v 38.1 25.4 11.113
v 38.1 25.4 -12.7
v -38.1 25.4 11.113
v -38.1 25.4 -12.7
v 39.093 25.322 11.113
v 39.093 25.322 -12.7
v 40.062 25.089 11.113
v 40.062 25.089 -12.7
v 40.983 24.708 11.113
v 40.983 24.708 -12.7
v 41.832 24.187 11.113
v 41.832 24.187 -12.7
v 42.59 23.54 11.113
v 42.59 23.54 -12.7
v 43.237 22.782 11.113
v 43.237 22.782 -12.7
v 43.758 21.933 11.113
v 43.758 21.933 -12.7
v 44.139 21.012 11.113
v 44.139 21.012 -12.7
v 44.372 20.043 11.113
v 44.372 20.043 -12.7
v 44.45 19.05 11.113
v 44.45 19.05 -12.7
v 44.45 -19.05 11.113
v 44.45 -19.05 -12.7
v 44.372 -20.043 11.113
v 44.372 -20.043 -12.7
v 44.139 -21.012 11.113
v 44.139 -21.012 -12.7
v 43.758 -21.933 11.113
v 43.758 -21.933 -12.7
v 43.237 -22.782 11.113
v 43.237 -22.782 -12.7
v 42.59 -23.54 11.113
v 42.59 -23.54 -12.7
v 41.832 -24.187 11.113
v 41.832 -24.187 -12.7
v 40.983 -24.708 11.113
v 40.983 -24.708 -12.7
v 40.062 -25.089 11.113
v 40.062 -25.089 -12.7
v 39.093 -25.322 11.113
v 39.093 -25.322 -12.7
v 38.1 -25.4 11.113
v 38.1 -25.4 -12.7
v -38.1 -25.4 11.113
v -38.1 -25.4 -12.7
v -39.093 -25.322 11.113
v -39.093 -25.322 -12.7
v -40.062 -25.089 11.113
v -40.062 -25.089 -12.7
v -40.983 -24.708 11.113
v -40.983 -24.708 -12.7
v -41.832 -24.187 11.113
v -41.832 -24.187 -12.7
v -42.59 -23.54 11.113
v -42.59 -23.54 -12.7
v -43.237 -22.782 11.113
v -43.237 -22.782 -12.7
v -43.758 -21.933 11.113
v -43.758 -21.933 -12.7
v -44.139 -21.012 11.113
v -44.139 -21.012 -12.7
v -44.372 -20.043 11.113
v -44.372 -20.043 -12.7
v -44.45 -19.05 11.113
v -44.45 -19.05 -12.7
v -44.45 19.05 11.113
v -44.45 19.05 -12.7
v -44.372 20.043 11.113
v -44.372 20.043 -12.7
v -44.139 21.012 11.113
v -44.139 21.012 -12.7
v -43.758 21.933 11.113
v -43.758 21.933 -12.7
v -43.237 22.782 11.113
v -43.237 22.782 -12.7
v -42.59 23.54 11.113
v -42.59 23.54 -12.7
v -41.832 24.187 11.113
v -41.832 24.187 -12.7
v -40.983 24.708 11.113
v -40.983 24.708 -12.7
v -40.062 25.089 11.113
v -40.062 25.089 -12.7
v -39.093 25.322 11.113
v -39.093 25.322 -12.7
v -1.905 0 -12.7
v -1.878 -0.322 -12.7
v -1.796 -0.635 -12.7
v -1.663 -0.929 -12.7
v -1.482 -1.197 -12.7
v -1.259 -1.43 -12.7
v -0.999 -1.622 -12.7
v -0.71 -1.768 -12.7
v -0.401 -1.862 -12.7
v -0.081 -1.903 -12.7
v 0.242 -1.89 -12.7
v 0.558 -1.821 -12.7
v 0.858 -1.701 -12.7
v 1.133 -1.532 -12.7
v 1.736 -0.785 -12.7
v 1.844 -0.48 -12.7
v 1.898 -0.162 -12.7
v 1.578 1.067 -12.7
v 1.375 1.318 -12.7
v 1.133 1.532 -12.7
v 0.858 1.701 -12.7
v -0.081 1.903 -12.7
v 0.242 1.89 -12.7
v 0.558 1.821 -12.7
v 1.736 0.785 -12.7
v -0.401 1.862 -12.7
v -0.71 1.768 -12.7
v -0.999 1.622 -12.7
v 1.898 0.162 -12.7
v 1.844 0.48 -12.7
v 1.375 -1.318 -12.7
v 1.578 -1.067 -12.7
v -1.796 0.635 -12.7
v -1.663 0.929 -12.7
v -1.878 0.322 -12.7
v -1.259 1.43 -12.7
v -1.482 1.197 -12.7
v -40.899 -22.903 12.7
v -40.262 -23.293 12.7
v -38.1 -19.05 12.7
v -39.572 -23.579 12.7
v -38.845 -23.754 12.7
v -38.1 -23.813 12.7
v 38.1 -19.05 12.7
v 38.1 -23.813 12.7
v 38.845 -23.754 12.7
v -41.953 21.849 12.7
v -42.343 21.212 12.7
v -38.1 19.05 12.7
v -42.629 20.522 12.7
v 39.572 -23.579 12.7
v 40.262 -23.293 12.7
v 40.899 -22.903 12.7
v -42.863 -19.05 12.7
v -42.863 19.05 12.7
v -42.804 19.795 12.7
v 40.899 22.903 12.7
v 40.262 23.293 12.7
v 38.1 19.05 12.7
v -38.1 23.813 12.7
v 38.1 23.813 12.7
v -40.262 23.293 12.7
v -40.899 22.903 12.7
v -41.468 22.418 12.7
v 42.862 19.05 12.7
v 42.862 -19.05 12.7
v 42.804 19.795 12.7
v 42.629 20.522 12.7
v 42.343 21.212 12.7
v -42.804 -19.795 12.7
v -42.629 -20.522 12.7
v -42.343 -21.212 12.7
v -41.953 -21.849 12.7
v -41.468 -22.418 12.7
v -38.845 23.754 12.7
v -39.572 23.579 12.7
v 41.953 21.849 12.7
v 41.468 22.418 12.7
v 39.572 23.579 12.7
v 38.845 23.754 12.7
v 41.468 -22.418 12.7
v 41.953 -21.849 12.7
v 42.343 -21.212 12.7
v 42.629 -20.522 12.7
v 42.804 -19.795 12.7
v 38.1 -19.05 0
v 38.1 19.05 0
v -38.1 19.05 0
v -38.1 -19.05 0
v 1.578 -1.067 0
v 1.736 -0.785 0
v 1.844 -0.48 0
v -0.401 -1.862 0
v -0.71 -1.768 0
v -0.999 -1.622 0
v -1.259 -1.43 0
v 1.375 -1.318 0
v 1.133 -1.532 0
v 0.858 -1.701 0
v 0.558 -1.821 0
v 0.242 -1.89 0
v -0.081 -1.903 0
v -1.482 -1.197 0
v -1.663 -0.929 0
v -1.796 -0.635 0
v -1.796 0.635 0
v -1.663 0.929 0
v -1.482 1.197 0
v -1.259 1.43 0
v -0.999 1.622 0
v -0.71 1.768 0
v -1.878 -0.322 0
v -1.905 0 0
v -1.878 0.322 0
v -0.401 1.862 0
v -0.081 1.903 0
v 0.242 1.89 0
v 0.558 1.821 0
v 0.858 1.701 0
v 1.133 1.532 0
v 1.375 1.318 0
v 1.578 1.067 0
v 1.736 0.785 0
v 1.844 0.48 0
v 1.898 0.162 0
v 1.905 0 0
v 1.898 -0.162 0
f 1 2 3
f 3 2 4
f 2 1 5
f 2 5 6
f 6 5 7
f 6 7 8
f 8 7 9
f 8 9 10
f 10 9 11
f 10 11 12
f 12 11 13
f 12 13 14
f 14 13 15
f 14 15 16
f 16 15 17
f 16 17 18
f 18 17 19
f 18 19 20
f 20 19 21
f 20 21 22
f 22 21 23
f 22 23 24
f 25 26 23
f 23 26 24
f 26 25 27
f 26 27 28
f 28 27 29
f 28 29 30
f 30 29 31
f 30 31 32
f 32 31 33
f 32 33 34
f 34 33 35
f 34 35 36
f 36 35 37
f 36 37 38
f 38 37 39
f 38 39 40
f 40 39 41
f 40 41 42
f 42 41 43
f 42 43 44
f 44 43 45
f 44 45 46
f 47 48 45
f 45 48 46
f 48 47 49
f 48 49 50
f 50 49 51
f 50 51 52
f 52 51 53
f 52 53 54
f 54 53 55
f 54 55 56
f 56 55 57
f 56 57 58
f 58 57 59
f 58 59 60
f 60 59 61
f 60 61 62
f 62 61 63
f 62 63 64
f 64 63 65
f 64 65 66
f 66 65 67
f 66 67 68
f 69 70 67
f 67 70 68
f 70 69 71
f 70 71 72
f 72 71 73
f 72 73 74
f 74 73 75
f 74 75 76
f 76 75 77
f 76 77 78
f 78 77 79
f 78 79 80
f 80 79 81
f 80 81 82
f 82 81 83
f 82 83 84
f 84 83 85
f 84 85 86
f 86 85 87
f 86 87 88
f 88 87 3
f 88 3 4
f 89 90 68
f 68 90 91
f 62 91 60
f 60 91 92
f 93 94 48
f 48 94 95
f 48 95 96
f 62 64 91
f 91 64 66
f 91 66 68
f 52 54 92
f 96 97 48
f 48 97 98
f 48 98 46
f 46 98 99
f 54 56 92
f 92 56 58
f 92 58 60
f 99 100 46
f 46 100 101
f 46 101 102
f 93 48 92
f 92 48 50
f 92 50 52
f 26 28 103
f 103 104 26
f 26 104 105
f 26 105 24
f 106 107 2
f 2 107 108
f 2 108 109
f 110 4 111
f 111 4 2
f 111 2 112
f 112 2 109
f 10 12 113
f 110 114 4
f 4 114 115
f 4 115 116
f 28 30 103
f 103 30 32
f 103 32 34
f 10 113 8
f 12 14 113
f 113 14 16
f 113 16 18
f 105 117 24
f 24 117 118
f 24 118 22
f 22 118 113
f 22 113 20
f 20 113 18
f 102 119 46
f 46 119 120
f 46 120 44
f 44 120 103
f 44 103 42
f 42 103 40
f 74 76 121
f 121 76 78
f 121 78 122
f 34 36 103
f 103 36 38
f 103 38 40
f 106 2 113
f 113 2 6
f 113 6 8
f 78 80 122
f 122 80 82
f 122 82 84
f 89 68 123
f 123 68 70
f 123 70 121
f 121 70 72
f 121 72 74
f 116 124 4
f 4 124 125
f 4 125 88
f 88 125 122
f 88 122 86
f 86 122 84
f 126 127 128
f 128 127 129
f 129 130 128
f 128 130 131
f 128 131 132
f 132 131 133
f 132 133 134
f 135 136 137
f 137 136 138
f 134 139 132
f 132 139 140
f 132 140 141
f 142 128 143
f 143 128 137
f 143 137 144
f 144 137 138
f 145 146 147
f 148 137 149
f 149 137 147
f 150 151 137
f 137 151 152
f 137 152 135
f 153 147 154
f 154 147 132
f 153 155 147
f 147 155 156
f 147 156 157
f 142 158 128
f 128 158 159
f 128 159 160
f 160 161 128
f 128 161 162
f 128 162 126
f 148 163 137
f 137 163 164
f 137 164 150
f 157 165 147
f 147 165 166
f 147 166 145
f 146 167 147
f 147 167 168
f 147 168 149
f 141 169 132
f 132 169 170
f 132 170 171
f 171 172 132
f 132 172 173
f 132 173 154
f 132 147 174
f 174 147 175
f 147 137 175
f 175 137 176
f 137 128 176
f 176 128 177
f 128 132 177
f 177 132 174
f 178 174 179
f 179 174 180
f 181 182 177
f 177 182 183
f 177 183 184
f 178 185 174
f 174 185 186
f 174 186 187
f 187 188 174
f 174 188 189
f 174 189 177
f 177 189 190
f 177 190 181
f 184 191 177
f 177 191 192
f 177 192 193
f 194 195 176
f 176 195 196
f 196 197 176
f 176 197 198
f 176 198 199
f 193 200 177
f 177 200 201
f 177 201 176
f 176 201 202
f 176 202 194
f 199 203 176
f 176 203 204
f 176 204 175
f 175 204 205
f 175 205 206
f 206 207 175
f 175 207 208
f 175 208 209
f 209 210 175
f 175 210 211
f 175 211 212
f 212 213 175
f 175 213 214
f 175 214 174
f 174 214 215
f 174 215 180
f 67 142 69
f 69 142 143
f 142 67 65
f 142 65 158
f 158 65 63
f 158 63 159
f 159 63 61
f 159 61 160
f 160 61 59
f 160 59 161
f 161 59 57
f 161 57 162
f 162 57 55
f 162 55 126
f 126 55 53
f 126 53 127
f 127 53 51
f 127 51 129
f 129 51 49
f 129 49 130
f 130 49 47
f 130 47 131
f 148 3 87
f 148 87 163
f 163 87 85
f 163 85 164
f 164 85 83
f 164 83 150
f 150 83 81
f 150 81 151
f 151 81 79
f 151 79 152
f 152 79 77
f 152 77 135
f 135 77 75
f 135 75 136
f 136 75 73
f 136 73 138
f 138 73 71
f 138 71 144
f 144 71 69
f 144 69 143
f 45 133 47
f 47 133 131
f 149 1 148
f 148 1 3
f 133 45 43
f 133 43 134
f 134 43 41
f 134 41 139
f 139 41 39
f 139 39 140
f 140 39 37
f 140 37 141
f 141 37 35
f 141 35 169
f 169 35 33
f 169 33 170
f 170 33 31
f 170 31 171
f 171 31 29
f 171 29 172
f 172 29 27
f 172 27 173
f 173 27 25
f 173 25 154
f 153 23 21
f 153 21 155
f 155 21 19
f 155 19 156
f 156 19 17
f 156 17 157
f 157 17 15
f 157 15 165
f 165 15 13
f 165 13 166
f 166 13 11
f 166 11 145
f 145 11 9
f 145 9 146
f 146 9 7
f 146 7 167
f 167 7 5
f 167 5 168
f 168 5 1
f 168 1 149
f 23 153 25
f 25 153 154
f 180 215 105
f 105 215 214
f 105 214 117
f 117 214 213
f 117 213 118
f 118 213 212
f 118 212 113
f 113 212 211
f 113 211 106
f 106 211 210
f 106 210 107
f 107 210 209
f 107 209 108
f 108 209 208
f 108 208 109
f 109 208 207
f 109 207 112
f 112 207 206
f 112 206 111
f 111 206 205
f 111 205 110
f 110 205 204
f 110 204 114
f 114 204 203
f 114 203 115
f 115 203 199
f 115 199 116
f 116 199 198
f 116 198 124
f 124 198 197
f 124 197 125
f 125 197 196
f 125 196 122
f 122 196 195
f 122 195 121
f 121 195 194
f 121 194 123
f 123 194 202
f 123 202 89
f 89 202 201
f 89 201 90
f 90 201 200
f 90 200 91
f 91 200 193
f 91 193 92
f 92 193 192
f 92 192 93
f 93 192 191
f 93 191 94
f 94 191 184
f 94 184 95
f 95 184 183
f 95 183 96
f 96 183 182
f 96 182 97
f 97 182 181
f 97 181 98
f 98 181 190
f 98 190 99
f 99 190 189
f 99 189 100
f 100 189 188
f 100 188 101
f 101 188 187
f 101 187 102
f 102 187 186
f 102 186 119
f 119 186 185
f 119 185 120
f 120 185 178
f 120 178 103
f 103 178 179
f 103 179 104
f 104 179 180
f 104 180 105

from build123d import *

# Parameters (mm, degrees)
BOSS_EXTRUDE1_DEPTH = 12.7
BOSS_EXTRUDE2_START = 12.7
SKETCH2_3_W         = 76.2
SKETCH2_3_H         = 38.1
BOSS_EXTRUDE2_DEPTH = 12.7
CHAMFER1_SIZE       = 1.5875
SKETCH3_R           = 1.905
CUT_EXTRUDE1_DEPTH  = 58.15


with BuildPart() as part:
    # Sketch2 → Boss-Extrude1 (new body)
    with BuildSketch(Plane.XY):
        with BuildLine():
            Line((38.1, 25.4), (-38.1, 25.4))
            ThreePointArc((-38.1, 25.4), (-42.590128061, 23.540128061), (-44.45, 19.05))
            Line((-44.45, 19.05), (-44.45, -19.05))
            ThreePointArc((-44.45, -19.05), (-42.590128061, -23.540128061), (-38.1, -25.4))
            Line((-38.1, -25.4), (38.1, -25.4))
            ThreePointArc((38.1, -25.4), (42.590128061, -23.540128061), (44.45, -19.05))
            Line((44.45, -19.05), (44.45, 19.05))
            ThreePointArc((44.45, 19.05), (42.590128061, 23.540128061), (38.1, 25.4))
        make_face()
    extrude(amount=-BOSS_EXTRUDE1_DEPTH)

    # Sketch2<3> → Boss-Extrude2 (add)
    with BuildSketch(Plane.XY.offset(BOSS_EXTRUDE2_START)):
        with BuildLine():
            Line((-38.1, 25.4), (38.1, 25.4))
            ThreePointArc((38.1, 25.4), (42.590128061, 23.540128061), (44.45, 19.05))
            Line((44.45, 19.05), (44.45, -19.05))
            ThreePointArc((44.45, -19.05), (42.590128061, -23.540128061), (38.1, -25.4))
            Line((38.1, -25.4), (-38.1, -25.4))
            ThreePointArc((-38.1, -25.4), (-42.590128061, -23.540128061), (-44.45, -19.05))
            Line((-44.45, -19.05), (-44.45, 19.05))
            ThreePointArc((-44.45, 19.05), (-42.590128061, 23.540128061), (-38.1, 25.4))
        make_face()
        Rectangle(SKETCH2_3_W, SKETCH2_3_H, mode=Mode.SUBTRACT)
    extrude(amount=-BOSS_EXTRUDE2_DEPTH)

    # Chamfer1
    chamfer1_edges = [part.edges().sort_by_distance(p)[0] for p in [
        (44.45, 0, 12.7),
        (42.590128061, 23.540128061, 12.7),
        (42.590128061, -23.540128061, 12.7),
        (0, 25.4, 12.7),
        (0, -25.4, 12.7),
        (-42.590128061, 23.540128061, 12.7),
        (-42.590128061, -23.540128061, 12.7),
        (-44.45, 0, 12.7),
    ]]
    chamfer(chamfer1_edges, length=CHAMFER1_SIZE)

    # Sketch3 → Cut-Extrude1 (cut, through all)
    with BuildSketch(Plane(origin=(0, 0, -12.7), x_dir=(-1, 0, 0), z_dir=(0, 0, -1))):
        Circle(SKETCH3_R)
    extrude(amount=-CUT_EXTRUDE1_DEPTH, mode=Mode.SUBTRACT)


solid = part.part
